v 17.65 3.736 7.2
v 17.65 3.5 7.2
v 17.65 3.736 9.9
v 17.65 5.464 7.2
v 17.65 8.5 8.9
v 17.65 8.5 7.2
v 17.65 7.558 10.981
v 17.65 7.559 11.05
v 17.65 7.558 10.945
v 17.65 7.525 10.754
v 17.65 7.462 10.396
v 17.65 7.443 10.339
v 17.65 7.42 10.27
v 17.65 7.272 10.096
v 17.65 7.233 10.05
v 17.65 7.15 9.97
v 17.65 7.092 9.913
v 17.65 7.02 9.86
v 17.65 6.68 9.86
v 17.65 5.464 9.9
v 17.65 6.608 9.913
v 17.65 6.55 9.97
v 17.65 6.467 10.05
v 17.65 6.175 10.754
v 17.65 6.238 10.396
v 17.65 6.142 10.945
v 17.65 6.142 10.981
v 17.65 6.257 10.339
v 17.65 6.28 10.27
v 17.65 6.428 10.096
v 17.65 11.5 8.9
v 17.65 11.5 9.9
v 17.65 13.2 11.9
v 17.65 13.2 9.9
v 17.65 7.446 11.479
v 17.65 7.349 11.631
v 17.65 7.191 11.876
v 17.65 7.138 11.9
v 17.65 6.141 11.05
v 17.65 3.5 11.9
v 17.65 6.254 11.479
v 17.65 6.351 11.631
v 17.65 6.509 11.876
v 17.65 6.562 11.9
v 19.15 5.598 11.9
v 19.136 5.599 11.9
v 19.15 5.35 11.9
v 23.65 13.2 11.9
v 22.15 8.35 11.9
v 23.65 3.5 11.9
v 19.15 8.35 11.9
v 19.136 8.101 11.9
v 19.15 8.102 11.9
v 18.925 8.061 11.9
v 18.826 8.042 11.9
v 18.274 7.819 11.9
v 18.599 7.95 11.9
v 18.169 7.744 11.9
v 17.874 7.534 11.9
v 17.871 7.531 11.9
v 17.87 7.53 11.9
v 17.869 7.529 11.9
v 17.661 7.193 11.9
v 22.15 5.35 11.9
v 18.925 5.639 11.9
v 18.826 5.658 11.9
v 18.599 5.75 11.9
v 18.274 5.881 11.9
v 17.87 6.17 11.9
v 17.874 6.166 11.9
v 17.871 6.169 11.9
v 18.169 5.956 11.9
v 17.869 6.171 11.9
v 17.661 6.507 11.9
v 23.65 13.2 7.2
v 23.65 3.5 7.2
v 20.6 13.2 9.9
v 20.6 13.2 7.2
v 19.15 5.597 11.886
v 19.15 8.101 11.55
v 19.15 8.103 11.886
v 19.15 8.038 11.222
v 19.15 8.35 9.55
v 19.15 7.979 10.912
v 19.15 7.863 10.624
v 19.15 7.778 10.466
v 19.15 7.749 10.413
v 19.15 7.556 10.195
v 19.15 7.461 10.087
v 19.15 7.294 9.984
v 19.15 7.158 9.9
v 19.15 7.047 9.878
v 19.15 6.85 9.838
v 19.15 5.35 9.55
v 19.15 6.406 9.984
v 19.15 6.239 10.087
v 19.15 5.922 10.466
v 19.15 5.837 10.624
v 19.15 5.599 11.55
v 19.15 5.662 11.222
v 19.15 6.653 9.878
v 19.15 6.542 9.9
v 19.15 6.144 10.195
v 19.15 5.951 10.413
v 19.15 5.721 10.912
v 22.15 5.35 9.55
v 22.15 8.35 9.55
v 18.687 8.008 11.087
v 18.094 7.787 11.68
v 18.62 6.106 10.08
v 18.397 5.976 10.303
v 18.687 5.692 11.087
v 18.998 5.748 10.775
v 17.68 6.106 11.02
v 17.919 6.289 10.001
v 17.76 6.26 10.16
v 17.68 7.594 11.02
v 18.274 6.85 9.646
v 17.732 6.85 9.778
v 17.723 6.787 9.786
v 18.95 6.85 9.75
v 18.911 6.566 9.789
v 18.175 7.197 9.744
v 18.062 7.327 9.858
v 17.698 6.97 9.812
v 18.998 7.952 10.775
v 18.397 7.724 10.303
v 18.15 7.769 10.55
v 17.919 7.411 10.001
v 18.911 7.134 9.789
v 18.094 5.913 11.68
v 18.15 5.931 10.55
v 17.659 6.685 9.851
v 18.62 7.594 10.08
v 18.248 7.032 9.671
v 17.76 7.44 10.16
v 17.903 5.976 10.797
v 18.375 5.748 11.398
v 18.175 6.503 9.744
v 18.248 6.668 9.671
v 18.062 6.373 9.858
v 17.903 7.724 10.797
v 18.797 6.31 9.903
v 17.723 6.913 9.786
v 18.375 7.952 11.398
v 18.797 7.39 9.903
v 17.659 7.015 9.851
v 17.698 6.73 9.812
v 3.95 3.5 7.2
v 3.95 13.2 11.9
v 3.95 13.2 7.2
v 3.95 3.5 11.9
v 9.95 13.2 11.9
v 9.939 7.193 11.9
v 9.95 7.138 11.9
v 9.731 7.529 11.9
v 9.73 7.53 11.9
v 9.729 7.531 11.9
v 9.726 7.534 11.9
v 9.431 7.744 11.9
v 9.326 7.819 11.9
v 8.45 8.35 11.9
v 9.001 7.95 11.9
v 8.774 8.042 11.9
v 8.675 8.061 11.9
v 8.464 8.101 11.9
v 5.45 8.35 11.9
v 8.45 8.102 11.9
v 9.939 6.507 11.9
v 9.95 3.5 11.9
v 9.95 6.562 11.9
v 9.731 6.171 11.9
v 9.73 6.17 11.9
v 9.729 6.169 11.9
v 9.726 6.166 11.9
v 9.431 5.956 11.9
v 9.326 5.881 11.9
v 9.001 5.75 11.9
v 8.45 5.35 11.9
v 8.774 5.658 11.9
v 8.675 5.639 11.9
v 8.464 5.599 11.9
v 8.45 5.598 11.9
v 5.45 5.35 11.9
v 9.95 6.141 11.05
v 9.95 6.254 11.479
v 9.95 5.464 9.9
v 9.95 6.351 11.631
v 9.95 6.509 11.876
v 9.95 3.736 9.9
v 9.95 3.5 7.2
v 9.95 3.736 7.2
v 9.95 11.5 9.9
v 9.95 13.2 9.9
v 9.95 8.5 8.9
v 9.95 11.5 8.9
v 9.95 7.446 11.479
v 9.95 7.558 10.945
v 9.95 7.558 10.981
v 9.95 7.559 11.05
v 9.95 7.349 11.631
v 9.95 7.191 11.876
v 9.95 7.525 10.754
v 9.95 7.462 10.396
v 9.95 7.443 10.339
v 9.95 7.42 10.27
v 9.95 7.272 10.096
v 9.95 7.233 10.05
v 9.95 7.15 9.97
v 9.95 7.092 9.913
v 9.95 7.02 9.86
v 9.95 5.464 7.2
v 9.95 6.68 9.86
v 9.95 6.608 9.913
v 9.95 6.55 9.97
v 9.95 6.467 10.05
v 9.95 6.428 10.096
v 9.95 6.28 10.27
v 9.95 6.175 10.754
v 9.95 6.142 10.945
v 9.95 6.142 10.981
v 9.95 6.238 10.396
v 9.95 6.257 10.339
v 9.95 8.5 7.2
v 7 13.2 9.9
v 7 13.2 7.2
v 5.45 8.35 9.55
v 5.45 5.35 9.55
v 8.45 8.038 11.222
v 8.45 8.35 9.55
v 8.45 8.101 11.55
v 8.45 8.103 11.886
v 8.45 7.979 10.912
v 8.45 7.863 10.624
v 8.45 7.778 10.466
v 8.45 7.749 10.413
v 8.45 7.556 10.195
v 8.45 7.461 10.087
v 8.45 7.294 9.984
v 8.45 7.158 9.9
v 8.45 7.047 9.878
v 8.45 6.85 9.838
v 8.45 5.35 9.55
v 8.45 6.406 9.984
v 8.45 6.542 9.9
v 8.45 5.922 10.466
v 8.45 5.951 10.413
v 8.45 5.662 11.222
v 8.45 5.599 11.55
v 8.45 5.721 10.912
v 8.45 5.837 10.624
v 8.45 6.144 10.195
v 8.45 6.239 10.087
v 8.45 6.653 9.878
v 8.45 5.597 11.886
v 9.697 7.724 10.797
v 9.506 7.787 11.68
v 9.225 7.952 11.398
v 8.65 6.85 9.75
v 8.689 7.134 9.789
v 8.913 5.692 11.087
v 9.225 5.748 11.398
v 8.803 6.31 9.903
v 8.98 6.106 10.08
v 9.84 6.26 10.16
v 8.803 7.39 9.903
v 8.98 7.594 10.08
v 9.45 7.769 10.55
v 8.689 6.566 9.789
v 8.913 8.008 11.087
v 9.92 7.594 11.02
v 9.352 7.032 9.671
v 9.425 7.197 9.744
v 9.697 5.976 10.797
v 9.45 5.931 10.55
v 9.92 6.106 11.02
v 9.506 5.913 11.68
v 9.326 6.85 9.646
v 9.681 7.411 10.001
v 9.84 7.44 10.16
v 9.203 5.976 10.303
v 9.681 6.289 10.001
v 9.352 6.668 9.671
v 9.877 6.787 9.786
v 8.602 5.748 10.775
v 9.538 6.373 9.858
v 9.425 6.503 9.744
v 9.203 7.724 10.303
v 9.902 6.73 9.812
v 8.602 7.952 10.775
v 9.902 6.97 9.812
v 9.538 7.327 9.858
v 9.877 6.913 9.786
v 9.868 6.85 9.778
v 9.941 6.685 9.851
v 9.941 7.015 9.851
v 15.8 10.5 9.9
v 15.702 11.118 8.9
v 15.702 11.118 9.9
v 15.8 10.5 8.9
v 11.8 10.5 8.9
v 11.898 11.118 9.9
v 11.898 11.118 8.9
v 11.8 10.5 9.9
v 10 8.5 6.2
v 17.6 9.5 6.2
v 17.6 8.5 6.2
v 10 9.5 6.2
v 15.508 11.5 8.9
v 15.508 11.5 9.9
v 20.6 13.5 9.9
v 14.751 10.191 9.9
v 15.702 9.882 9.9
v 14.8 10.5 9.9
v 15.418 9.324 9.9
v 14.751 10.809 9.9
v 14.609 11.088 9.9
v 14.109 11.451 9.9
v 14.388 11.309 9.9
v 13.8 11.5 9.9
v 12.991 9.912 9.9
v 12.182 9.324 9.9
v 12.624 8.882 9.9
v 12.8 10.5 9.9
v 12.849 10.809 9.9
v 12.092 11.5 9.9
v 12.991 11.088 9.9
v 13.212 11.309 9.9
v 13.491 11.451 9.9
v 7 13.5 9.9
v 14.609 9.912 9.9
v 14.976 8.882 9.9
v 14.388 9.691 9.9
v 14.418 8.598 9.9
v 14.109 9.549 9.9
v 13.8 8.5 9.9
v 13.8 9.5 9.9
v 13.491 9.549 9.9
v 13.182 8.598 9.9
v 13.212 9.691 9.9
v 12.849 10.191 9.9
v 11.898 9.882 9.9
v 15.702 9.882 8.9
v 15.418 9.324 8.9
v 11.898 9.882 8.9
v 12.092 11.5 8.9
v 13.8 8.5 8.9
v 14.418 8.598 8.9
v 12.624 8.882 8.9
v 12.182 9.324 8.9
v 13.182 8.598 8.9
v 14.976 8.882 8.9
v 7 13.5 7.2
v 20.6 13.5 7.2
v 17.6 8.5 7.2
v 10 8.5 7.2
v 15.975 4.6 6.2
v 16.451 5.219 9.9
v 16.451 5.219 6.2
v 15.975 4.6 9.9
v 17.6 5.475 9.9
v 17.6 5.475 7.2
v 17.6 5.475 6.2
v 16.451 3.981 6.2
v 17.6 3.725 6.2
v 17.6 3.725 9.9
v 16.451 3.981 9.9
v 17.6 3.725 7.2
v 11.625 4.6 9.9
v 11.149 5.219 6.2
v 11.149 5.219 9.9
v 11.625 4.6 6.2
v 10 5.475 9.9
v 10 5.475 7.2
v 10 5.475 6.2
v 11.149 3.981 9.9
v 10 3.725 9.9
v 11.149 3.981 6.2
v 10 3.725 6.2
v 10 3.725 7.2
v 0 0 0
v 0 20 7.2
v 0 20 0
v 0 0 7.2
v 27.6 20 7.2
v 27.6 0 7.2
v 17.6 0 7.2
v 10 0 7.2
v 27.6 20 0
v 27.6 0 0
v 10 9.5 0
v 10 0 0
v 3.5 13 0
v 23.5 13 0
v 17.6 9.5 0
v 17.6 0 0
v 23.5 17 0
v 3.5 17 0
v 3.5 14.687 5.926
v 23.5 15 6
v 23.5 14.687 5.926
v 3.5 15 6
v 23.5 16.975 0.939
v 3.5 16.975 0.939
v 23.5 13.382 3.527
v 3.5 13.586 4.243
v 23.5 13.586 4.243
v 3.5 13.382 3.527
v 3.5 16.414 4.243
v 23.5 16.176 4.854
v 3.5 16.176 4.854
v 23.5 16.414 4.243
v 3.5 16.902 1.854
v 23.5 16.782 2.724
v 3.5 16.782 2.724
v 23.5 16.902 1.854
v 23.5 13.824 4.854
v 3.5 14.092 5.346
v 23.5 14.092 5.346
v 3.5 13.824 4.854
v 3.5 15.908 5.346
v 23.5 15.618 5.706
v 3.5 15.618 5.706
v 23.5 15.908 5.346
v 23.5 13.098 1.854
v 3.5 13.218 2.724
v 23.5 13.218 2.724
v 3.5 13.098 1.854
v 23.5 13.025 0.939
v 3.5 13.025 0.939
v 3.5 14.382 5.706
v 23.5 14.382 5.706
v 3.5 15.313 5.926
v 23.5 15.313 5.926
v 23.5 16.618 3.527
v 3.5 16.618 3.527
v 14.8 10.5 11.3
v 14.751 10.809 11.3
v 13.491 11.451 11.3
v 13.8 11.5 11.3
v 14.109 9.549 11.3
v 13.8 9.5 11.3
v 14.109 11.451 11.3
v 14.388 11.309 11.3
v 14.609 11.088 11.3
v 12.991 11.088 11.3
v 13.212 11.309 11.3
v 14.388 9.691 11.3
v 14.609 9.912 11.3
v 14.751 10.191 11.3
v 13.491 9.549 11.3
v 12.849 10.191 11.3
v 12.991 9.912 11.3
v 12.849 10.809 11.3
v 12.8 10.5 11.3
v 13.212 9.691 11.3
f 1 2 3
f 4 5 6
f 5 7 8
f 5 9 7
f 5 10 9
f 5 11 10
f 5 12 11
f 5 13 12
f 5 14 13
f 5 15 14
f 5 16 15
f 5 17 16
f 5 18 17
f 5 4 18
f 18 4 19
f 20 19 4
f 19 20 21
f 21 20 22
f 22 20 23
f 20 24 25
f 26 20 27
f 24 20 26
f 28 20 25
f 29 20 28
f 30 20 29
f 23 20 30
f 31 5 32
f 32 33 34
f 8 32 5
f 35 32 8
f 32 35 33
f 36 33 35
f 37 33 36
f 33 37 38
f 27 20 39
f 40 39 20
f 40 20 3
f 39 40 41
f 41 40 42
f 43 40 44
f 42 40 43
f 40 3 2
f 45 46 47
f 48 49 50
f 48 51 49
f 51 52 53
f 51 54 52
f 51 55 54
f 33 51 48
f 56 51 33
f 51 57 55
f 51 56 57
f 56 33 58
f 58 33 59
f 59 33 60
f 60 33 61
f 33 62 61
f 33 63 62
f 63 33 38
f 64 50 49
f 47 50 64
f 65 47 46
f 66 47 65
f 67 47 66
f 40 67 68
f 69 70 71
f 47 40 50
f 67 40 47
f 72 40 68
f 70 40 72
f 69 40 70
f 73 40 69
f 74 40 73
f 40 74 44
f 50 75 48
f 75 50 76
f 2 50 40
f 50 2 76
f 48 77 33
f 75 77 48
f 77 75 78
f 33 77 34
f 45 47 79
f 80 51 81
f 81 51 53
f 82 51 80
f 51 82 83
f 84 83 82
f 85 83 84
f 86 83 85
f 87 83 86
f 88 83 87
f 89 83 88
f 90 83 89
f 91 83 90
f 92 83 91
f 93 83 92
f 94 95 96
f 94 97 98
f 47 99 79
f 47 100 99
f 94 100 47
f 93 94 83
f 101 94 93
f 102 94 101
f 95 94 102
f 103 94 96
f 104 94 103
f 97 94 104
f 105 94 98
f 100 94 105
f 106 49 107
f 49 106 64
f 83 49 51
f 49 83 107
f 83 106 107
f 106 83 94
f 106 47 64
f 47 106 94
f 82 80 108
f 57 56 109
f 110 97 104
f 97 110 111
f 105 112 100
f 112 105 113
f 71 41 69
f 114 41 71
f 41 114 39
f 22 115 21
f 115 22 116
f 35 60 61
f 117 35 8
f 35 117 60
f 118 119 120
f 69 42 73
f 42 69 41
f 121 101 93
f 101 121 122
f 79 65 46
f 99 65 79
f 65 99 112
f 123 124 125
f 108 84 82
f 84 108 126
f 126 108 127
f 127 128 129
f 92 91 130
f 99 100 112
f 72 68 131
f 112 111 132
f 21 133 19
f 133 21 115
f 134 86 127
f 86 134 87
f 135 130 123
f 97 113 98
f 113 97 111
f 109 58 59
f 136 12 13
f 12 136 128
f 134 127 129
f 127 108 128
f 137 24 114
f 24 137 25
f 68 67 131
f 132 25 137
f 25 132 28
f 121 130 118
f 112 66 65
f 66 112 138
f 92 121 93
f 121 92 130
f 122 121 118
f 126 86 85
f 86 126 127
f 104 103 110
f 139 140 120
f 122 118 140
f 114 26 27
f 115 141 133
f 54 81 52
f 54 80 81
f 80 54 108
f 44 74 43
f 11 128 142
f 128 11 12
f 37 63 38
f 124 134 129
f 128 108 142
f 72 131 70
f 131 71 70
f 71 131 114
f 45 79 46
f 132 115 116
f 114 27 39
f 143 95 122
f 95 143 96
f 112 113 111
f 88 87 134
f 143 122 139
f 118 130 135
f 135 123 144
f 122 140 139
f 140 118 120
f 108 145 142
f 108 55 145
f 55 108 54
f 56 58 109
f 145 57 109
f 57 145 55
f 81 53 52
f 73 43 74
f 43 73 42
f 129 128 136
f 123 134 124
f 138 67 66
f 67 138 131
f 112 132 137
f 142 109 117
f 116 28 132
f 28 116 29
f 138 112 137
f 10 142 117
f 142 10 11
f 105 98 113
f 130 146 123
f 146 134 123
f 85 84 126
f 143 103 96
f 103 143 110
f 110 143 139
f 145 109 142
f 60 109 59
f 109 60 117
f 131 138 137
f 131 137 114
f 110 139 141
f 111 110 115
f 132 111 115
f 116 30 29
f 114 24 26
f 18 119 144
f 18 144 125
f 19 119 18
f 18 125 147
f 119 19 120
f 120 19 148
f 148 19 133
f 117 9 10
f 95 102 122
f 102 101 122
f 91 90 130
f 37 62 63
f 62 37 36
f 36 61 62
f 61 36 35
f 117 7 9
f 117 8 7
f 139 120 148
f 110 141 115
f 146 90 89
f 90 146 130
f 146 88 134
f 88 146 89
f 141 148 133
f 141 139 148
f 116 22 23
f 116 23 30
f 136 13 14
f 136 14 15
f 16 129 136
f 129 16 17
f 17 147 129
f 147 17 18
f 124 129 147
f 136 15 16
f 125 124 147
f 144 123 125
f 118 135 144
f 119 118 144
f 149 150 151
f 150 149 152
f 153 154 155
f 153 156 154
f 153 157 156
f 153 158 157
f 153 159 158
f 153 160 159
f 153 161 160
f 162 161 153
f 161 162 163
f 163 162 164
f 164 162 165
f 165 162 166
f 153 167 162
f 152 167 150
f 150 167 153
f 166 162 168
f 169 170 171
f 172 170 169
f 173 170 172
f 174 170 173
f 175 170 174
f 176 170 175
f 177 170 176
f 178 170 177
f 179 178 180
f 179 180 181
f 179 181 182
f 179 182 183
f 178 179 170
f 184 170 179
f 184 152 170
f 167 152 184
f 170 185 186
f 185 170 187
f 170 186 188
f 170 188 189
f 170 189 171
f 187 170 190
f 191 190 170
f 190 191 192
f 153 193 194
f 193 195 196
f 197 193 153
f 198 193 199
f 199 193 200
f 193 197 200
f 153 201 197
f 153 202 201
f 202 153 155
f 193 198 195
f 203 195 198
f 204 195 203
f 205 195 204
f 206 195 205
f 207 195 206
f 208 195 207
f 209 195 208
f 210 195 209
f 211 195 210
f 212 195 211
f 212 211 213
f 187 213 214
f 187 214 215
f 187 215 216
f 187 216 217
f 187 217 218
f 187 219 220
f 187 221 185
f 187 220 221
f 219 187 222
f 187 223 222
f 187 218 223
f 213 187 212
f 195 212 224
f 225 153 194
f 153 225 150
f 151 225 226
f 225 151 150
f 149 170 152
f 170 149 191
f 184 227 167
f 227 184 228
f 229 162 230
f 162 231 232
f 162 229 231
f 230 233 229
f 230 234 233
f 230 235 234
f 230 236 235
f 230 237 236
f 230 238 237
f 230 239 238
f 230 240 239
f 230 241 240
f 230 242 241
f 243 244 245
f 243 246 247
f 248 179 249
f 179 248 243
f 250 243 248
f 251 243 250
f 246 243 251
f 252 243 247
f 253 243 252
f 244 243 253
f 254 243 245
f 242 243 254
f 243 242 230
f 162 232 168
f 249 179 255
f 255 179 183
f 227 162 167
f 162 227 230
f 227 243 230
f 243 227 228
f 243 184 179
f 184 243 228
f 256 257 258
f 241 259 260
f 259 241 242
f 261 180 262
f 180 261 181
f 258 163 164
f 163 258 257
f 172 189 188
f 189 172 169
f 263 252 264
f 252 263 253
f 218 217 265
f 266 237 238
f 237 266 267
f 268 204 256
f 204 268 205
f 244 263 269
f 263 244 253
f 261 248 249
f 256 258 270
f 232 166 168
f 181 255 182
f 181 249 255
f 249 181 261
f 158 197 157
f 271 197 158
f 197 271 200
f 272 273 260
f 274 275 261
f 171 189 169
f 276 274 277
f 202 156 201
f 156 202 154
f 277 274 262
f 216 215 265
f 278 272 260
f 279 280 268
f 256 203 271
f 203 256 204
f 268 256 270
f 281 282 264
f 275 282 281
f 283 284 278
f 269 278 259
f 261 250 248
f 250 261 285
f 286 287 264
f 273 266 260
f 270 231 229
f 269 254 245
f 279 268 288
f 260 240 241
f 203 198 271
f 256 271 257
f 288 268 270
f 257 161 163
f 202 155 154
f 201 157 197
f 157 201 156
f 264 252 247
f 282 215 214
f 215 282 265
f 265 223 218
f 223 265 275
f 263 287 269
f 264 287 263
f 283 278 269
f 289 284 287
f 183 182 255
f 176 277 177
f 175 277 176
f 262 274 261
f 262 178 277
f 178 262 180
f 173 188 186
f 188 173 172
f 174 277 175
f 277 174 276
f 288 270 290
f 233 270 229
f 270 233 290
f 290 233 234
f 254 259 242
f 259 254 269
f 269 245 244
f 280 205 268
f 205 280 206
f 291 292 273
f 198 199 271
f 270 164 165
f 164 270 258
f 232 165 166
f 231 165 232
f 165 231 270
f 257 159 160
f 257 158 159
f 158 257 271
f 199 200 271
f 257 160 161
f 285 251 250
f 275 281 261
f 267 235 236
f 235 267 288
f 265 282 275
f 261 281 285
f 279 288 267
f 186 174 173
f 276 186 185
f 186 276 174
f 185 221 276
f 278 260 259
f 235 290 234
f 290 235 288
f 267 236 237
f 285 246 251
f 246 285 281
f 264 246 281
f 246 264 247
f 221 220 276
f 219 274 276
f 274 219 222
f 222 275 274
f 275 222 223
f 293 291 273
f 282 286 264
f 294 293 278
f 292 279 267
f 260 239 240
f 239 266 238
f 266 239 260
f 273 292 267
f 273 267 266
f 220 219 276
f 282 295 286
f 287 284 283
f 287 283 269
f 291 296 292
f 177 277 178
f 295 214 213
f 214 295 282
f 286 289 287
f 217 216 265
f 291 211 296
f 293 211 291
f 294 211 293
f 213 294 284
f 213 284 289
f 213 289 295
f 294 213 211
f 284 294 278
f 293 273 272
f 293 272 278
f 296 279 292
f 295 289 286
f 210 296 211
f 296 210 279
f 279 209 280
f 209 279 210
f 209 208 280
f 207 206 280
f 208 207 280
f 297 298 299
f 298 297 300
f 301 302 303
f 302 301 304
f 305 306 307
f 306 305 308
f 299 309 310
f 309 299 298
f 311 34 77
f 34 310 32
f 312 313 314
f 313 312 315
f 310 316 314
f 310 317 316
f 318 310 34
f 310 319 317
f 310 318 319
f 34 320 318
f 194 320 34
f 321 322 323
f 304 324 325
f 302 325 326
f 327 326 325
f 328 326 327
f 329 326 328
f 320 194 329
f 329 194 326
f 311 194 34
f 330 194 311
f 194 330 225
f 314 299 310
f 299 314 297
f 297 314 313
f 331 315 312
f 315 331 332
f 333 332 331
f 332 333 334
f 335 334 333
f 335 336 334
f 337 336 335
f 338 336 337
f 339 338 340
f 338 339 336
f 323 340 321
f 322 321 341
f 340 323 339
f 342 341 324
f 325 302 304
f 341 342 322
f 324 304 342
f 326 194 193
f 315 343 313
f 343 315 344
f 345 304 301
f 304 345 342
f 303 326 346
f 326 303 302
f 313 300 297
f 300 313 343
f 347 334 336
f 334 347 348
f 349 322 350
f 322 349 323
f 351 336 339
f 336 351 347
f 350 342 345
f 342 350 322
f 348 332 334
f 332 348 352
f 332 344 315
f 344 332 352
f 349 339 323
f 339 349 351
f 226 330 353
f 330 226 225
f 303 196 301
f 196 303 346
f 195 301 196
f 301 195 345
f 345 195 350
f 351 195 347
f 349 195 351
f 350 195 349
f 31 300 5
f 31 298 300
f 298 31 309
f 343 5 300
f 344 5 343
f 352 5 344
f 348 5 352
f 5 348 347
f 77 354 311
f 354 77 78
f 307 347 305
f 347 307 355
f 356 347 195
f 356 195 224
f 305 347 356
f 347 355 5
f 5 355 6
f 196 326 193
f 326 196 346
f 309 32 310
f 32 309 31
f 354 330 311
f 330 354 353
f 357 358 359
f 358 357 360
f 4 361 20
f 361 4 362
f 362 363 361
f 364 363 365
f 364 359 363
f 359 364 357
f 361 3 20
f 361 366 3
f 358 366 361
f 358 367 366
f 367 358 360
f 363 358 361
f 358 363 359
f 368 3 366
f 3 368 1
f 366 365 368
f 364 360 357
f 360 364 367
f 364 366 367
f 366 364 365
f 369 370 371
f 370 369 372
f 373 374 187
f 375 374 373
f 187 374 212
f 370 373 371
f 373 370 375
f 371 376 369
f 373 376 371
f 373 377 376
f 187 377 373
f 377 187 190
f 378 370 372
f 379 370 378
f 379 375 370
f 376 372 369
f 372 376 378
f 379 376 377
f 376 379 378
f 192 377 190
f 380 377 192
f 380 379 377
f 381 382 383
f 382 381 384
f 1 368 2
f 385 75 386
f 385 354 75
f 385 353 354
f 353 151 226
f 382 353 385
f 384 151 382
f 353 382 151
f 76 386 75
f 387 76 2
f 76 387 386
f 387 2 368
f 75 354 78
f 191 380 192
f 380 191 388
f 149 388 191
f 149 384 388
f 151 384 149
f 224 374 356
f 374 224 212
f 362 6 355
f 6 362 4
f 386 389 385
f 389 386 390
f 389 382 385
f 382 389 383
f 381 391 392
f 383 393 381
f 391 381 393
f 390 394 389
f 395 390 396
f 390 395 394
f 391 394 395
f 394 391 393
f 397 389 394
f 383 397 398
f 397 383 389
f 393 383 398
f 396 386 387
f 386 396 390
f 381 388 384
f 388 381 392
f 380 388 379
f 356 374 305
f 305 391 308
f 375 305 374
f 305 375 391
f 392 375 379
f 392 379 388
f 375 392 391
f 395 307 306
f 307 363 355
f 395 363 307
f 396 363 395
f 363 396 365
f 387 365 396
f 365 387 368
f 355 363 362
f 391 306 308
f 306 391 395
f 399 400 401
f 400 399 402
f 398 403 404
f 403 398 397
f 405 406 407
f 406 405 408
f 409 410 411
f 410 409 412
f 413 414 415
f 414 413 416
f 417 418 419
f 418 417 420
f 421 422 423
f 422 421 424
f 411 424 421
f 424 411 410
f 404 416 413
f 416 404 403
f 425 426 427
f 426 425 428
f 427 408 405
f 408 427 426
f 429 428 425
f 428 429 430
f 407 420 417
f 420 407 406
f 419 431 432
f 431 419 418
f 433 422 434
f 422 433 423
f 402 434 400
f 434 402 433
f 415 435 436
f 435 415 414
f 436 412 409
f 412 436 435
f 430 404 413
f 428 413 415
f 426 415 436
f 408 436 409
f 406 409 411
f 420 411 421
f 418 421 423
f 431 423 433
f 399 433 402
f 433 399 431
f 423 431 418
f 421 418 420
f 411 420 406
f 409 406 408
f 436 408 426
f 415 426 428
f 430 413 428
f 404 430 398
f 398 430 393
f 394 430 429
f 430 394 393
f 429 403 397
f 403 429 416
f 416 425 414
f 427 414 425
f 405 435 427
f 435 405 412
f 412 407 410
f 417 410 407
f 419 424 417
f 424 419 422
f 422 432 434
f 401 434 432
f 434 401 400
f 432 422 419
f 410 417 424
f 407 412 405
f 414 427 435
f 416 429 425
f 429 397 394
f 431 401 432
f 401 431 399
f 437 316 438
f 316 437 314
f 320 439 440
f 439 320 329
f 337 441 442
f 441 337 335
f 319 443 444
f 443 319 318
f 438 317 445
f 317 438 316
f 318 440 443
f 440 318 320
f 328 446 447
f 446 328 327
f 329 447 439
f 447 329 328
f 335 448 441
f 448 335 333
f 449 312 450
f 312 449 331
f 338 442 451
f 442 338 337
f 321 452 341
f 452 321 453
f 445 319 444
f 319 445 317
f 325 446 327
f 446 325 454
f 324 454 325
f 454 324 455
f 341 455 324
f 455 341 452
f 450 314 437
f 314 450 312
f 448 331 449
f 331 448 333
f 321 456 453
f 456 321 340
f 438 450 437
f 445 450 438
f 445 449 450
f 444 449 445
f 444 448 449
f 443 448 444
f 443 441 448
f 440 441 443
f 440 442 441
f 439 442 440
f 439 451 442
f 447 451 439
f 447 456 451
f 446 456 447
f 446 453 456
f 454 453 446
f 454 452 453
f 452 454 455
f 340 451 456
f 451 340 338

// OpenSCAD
boardx = 7.6;
boardy = 12.7;
boardz = 1.02;
holed_pin = 1.02;
holed_blt = 2.18;
scale = 7.32; // 1.00 mm on scale drawing of sensor
sensory = 3.6;
sensorz = 1.7;
board_up = 9.7;


module sensor_board() {   // this module will locate the board and sensor the right 
    union() {             //  distance above the xy plain with a corner touching the z axis
        translate([0,0, board_up]) difference() {
            color("red") cube([boardx, boardy, boardz]); // board
            translate([1.27+0*2.54, 1.27, 0])cylinder(d=holed_pin, h=3, center=true, $fn=20);
            translate([1.27+1*2.54, 1.27, 0])cylinder(d=holed_pin, h=3, center=true, $fn=20);
            translate([1.27+2*2.54, 1.27, 0])cylinder(d=holed_pin, h=3, center=true, $fn=20);
            translate([3.8, boardy-2.2, 0])cylinder(d=holed_blt, h=3, center=true, $fn=20);
        };
        translate([3.8, 4.5, 9.7-1.7/2]) difference() {  
            color("grey")cube([2.9, sensory, sensorz], center=true); // sensor
            translate([0,sensory/2-0.94, -sensorz/2]  ) cube([18.38/scale, 10.61/scale, 0.3], center= true);
            translate([0,-sensory/2+0.94, -sensorz/2]  ) cube([18.38/scale, 10.61/scale, 0.3], center= true);         
        }
    }
}

module chamber_glue_board() {
    
}

module support3d() {
    
    union() {
        cylinder( r = 2.0, h = 3.7, $fn= 20);
        translate([0,0, 3.7/2-1/2]) cube([boardx+6, 2*2, 3.7-1], center = true );
        translate([0,2, 3.7/2]) cube([boardx+6, 2, 3.7], center = true );
    
        translate([boardx/2, -5.9, 0]) scale([1.3, 0.7, 1]) cylinder( d = 2.5,  h = 3.7, $fn= 8);
        translate([-boardx/2, -5.9, 0]) scale([1.3, 0.7, 1]) cylinder( d = 2.5,  h = 3.7, $fn= 8);
        translate([boardx/2+1.55+1.5,-boardy/2+2.2+2, (3.7+1+1)/2]) difference() {
            cube([6, boardy-3, 3.7+2], center = true );
            translate([0,-1.5,2])cube([3,3,3], center = true);
            translate([-1,-1.5,3])rotate([0,45,0])scale([0.8,0.65, 1.5])sphere(r=2, $fn=20 );
        };
        translate([-(boardx/2+1.55+1.5),-boardy/2+2.2+2, (3.7+1+1)/2]) difference() {
            cube([6, boardy-3, 3.7+2], center = true );
            translate([0,-1.5,2])cube([3,3,3], center = true);
            translate([1,-1.5,3])rotate([0,-45,0])scale([0.8,0.65, 1.5])sphere(r=2, $fn=20 );
        }
    }
}

module pin() {
    
    translate([0,0,0]) cylinder( d = 2.2-0.2, h = 3.1, $fn= 20);
}

module downpin1() {
    translate([0.17,0,0]) cylinder( d = 5, h = 3.1+6+2, $fn= 40);
}

module base() {
    difference() {
        cube([10+boardx+10, 20, 6]);
        translate([10, -0.2, -0.5]) cube([boardx, boardy-3, 7]);
        translate([3.5, 15, 0])rotate([0,90,0])scale([2,0.8,1])cylinder( d = 5, h = 20, $fn= 40);
    }
}


// translate([10, 0, 0.2]) sensor_board();


translate([10, 0, 0.2]) color("black", 1) union() {
    translate([boardx/2, boardy-2.2, 6]) support3d();
    translate([boardx/2, boardy-2.2, 6+2]) pin();
    //translate([boardx+4, boardy-2.2, 0])downpin1();
    //translate([boardx+4-16, boardy-2.2, 0])downpin1();
    translate([-10, 0, -0.2]) scale([1,1, 1.2]) base();
}
